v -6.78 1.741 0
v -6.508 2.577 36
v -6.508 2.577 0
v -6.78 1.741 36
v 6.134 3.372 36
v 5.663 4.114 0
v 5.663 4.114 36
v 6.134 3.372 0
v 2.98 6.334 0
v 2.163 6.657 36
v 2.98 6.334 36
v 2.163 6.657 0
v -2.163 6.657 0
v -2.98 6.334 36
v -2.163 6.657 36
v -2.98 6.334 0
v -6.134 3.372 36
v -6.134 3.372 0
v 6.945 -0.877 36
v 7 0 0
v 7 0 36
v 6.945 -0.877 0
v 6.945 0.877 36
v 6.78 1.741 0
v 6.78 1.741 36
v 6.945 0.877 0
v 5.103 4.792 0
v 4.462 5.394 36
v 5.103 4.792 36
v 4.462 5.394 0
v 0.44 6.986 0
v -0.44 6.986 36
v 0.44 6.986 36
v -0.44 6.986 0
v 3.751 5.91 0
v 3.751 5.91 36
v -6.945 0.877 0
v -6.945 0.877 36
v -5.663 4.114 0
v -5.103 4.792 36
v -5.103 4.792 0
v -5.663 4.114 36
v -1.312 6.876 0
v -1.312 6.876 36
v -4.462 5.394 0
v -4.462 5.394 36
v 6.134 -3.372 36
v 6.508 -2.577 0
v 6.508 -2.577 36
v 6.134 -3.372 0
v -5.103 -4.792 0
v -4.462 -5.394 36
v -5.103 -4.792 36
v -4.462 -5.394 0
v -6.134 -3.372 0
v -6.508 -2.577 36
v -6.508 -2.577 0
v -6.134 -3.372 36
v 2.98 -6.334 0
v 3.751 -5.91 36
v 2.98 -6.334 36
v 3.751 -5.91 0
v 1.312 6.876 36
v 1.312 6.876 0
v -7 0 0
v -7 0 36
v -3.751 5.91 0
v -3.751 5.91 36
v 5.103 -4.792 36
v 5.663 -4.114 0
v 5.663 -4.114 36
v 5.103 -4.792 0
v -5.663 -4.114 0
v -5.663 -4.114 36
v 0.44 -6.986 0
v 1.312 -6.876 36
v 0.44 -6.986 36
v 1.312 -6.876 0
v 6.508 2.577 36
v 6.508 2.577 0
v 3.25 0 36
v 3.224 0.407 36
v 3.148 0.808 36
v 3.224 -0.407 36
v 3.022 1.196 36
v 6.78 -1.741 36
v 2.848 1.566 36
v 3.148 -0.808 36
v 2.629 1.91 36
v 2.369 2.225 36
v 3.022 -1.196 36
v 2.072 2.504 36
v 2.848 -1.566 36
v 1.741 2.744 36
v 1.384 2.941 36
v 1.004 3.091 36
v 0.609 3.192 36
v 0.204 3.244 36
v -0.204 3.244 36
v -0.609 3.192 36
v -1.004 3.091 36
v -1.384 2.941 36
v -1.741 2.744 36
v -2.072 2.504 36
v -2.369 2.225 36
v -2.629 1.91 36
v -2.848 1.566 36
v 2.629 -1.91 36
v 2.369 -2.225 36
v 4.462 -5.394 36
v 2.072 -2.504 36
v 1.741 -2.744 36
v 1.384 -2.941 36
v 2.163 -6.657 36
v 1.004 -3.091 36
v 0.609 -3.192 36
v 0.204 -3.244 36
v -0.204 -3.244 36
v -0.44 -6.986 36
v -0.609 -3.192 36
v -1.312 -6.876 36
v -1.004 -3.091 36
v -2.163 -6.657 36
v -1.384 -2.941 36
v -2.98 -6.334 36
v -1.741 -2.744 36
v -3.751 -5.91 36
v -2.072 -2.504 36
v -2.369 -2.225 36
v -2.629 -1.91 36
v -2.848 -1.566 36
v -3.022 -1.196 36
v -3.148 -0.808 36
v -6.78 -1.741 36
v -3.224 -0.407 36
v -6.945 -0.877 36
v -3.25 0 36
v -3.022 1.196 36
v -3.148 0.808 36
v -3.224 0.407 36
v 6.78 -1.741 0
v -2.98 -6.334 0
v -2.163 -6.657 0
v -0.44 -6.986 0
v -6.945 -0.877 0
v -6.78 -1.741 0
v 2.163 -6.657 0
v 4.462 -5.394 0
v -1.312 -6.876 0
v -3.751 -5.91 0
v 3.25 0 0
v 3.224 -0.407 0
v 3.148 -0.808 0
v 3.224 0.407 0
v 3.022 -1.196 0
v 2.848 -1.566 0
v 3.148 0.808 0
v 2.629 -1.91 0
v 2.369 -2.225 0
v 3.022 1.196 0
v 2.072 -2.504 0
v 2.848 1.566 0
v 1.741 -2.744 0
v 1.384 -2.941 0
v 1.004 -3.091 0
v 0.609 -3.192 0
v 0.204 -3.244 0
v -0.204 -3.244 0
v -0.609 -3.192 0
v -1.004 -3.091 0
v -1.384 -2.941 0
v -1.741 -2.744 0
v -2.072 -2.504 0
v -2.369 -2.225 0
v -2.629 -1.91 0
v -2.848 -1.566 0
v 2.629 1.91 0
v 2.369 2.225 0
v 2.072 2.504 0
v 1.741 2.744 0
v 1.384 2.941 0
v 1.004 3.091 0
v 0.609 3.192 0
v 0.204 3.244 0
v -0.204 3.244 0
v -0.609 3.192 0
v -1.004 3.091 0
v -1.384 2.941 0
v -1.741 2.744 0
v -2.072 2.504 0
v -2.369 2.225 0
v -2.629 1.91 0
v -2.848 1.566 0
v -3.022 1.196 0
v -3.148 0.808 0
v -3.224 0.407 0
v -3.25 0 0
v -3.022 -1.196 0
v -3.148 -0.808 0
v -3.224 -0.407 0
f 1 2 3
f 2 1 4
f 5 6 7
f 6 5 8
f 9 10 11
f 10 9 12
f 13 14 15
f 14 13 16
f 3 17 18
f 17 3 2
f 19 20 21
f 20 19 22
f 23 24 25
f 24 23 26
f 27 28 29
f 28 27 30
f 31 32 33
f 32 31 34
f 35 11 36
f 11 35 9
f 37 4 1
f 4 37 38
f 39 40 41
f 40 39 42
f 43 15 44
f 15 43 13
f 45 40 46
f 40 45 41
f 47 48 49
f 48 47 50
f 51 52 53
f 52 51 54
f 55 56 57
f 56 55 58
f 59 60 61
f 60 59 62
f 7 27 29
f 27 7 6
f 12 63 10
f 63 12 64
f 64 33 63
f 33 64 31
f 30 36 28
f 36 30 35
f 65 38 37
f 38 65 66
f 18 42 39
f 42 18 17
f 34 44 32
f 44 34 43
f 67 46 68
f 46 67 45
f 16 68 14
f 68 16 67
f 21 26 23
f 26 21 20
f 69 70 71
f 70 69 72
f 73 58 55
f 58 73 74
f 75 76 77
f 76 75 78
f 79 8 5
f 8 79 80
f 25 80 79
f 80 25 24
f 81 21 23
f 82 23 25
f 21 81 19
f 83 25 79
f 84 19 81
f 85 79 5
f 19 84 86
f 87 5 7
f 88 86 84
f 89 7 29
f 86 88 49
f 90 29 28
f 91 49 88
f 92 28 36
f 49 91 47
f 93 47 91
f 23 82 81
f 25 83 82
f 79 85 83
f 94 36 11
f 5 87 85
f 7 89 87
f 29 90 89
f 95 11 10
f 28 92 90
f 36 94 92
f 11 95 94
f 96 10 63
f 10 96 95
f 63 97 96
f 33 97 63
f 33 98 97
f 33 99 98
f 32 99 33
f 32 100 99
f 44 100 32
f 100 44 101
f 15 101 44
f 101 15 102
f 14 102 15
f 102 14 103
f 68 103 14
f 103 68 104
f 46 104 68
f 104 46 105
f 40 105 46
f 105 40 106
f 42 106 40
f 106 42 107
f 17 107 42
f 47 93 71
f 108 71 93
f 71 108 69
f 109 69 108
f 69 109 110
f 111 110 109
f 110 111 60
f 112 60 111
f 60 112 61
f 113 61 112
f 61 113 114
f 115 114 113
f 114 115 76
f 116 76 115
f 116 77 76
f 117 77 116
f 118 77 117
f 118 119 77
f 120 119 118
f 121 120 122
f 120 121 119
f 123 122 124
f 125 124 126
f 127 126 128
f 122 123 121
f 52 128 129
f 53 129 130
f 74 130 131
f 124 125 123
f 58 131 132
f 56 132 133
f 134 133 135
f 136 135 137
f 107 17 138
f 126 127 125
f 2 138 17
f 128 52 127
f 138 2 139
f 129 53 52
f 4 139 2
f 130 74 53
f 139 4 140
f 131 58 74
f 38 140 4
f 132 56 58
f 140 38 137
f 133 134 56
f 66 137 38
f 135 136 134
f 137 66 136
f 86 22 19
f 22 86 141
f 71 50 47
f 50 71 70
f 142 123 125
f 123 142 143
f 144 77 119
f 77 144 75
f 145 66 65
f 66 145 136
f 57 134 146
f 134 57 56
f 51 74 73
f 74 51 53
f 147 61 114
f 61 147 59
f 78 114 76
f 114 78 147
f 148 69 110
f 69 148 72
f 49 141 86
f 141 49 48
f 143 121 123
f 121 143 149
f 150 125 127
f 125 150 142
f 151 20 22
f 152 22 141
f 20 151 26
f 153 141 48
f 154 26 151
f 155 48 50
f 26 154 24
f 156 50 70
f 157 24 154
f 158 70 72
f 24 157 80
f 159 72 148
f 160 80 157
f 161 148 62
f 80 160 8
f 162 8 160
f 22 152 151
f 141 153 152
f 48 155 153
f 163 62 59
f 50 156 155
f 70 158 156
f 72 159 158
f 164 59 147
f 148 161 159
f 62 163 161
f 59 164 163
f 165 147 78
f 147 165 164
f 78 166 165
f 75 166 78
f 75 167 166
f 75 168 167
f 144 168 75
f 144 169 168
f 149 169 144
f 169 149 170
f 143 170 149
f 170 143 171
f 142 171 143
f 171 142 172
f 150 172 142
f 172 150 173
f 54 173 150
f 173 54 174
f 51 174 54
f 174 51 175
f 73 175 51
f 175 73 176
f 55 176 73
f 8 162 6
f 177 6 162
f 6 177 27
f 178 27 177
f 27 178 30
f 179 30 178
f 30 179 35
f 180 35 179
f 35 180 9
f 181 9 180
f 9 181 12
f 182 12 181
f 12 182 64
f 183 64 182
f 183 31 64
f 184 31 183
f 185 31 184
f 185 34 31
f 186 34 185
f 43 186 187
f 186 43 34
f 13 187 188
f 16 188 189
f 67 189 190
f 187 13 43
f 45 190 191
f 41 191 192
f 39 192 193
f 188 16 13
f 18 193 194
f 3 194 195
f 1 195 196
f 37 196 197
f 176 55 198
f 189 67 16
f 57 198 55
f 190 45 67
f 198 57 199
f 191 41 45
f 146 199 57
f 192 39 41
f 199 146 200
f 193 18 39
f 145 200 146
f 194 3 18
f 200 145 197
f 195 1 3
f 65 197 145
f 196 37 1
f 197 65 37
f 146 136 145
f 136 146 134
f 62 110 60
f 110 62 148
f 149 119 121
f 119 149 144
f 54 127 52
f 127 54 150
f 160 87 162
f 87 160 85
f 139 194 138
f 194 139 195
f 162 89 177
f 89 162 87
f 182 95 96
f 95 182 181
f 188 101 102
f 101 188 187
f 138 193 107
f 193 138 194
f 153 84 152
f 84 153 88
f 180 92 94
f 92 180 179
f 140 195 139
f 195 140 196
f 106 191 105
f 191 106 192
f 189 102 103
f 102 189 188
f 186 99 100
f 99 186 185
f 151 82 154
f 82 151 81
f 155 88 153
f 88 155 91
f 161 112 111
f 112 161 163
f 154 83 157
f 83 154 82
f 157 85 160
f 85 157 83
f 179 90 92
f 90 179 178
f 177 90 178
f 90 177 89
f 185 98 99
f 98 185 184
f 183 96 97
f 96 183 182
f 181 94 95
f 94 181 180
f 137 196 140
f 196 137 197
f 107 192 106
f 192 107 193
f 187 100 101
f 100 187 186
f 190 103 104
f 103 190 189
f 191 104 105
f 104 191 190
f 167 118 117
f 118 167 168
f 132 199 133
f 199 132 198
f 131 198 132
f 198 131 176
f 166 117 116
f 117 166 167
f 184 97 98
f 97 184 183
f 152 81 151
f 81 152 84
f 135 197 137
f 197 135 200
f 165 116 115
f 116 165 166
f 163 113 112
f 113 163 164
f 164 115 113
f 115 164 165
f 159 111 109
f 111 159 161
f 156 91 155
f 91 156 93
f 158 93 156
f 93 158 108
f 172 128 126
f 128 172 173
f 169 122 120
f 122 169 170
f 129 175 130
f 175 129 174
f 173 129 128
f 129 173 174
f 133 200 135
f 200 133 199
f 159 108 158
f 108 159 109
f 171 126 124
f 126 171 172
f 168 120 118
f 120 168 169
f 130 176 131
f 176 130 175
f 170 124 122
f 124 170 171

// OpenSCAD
$fn = 50;


difference() {
	union() {
		cylinder(h = 36, r = 7.0000000000);
	}
	union() {
		translate(v = [0.0000000000, 0.0000000000, -100.0000000000]) {
			cylinder(h = 200, r = 3.2500000000);
		}
	}
}
